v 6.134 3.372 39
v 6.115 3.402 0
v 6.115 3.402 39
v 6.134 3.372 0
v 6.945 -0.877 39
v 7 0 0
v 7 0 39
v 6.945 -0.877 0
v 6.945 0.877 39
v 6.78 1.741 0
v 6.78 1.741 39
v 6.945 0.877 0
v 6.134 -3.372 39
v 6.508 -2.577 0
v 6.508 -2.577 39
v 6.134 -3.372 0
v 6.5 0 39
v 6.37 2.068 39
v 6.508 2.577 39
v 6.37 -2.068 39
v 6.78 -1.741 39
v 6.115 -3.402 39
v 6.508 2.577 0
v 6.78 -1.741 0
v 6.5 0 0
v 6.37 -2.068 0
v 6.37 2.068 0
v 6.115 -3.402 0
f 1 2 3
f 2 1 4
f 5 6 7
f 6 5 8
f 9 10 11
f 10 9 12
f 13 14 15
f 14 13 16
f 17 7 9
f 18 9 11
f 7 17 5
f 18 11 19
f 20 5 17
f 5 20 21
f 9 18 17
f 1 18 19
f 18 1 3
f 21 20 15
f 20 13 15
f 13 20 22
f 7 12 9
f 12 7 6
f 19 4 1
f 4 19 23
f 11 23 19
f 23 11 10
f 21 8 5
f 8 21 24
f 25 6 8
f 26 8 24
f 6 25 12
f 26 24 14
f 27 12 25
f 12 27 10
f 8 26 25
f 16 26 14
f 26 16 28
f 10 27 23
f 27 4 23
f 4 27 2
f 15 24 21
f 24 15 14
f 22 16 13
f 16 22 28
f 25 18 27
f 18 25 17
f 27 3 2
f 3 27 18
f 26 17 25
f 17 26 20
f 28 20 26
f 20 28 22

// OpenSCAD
$fn = 50;


difference() {
	union() {
		cylinder(h = 39, r = 7.0000000000);
		translate(v = [-13.0000000000, 0, 0]) {
			cylinder(h = 39, r = 7.0000000000);
		}
	}
	union() {
		cylinder(h = 39, r = 3.2500000000);
		cylinder(h = 39, r = 1.8000000000);
		cylinder(h = 39, r = 1.8000000000);
		cylinder(h = 39, r = 1.8000000000);
		translate(v = [-17.5000000000, 0, 0]) {
			hull() {
				translate(v = [-3.7500000000, 0.0000000000, 0]) {
					cylinder(h = 39, r = 10.5000000000);
				}
				translate(v = [3.7500000000, 0.0000000000, 0]) {
					cylinder(h = 39, r = 10.5000000000);
				}
				translate(v = [-3.7500000000, -0.0000000000, 0]) {
					cylinder(h = 39, r = 10.5000000000);
				}
				translate(v = [3.7500000000, -0.0000000000, 0]) {
					cylinder(h = 39, r = 10.5000000000);
				}
			}
		}
		translate(v = [-10.0000000000, 0, 0.0000000000]) {
			cylinder(h = 39, r = 16.5000000000);
		}
	}
}
